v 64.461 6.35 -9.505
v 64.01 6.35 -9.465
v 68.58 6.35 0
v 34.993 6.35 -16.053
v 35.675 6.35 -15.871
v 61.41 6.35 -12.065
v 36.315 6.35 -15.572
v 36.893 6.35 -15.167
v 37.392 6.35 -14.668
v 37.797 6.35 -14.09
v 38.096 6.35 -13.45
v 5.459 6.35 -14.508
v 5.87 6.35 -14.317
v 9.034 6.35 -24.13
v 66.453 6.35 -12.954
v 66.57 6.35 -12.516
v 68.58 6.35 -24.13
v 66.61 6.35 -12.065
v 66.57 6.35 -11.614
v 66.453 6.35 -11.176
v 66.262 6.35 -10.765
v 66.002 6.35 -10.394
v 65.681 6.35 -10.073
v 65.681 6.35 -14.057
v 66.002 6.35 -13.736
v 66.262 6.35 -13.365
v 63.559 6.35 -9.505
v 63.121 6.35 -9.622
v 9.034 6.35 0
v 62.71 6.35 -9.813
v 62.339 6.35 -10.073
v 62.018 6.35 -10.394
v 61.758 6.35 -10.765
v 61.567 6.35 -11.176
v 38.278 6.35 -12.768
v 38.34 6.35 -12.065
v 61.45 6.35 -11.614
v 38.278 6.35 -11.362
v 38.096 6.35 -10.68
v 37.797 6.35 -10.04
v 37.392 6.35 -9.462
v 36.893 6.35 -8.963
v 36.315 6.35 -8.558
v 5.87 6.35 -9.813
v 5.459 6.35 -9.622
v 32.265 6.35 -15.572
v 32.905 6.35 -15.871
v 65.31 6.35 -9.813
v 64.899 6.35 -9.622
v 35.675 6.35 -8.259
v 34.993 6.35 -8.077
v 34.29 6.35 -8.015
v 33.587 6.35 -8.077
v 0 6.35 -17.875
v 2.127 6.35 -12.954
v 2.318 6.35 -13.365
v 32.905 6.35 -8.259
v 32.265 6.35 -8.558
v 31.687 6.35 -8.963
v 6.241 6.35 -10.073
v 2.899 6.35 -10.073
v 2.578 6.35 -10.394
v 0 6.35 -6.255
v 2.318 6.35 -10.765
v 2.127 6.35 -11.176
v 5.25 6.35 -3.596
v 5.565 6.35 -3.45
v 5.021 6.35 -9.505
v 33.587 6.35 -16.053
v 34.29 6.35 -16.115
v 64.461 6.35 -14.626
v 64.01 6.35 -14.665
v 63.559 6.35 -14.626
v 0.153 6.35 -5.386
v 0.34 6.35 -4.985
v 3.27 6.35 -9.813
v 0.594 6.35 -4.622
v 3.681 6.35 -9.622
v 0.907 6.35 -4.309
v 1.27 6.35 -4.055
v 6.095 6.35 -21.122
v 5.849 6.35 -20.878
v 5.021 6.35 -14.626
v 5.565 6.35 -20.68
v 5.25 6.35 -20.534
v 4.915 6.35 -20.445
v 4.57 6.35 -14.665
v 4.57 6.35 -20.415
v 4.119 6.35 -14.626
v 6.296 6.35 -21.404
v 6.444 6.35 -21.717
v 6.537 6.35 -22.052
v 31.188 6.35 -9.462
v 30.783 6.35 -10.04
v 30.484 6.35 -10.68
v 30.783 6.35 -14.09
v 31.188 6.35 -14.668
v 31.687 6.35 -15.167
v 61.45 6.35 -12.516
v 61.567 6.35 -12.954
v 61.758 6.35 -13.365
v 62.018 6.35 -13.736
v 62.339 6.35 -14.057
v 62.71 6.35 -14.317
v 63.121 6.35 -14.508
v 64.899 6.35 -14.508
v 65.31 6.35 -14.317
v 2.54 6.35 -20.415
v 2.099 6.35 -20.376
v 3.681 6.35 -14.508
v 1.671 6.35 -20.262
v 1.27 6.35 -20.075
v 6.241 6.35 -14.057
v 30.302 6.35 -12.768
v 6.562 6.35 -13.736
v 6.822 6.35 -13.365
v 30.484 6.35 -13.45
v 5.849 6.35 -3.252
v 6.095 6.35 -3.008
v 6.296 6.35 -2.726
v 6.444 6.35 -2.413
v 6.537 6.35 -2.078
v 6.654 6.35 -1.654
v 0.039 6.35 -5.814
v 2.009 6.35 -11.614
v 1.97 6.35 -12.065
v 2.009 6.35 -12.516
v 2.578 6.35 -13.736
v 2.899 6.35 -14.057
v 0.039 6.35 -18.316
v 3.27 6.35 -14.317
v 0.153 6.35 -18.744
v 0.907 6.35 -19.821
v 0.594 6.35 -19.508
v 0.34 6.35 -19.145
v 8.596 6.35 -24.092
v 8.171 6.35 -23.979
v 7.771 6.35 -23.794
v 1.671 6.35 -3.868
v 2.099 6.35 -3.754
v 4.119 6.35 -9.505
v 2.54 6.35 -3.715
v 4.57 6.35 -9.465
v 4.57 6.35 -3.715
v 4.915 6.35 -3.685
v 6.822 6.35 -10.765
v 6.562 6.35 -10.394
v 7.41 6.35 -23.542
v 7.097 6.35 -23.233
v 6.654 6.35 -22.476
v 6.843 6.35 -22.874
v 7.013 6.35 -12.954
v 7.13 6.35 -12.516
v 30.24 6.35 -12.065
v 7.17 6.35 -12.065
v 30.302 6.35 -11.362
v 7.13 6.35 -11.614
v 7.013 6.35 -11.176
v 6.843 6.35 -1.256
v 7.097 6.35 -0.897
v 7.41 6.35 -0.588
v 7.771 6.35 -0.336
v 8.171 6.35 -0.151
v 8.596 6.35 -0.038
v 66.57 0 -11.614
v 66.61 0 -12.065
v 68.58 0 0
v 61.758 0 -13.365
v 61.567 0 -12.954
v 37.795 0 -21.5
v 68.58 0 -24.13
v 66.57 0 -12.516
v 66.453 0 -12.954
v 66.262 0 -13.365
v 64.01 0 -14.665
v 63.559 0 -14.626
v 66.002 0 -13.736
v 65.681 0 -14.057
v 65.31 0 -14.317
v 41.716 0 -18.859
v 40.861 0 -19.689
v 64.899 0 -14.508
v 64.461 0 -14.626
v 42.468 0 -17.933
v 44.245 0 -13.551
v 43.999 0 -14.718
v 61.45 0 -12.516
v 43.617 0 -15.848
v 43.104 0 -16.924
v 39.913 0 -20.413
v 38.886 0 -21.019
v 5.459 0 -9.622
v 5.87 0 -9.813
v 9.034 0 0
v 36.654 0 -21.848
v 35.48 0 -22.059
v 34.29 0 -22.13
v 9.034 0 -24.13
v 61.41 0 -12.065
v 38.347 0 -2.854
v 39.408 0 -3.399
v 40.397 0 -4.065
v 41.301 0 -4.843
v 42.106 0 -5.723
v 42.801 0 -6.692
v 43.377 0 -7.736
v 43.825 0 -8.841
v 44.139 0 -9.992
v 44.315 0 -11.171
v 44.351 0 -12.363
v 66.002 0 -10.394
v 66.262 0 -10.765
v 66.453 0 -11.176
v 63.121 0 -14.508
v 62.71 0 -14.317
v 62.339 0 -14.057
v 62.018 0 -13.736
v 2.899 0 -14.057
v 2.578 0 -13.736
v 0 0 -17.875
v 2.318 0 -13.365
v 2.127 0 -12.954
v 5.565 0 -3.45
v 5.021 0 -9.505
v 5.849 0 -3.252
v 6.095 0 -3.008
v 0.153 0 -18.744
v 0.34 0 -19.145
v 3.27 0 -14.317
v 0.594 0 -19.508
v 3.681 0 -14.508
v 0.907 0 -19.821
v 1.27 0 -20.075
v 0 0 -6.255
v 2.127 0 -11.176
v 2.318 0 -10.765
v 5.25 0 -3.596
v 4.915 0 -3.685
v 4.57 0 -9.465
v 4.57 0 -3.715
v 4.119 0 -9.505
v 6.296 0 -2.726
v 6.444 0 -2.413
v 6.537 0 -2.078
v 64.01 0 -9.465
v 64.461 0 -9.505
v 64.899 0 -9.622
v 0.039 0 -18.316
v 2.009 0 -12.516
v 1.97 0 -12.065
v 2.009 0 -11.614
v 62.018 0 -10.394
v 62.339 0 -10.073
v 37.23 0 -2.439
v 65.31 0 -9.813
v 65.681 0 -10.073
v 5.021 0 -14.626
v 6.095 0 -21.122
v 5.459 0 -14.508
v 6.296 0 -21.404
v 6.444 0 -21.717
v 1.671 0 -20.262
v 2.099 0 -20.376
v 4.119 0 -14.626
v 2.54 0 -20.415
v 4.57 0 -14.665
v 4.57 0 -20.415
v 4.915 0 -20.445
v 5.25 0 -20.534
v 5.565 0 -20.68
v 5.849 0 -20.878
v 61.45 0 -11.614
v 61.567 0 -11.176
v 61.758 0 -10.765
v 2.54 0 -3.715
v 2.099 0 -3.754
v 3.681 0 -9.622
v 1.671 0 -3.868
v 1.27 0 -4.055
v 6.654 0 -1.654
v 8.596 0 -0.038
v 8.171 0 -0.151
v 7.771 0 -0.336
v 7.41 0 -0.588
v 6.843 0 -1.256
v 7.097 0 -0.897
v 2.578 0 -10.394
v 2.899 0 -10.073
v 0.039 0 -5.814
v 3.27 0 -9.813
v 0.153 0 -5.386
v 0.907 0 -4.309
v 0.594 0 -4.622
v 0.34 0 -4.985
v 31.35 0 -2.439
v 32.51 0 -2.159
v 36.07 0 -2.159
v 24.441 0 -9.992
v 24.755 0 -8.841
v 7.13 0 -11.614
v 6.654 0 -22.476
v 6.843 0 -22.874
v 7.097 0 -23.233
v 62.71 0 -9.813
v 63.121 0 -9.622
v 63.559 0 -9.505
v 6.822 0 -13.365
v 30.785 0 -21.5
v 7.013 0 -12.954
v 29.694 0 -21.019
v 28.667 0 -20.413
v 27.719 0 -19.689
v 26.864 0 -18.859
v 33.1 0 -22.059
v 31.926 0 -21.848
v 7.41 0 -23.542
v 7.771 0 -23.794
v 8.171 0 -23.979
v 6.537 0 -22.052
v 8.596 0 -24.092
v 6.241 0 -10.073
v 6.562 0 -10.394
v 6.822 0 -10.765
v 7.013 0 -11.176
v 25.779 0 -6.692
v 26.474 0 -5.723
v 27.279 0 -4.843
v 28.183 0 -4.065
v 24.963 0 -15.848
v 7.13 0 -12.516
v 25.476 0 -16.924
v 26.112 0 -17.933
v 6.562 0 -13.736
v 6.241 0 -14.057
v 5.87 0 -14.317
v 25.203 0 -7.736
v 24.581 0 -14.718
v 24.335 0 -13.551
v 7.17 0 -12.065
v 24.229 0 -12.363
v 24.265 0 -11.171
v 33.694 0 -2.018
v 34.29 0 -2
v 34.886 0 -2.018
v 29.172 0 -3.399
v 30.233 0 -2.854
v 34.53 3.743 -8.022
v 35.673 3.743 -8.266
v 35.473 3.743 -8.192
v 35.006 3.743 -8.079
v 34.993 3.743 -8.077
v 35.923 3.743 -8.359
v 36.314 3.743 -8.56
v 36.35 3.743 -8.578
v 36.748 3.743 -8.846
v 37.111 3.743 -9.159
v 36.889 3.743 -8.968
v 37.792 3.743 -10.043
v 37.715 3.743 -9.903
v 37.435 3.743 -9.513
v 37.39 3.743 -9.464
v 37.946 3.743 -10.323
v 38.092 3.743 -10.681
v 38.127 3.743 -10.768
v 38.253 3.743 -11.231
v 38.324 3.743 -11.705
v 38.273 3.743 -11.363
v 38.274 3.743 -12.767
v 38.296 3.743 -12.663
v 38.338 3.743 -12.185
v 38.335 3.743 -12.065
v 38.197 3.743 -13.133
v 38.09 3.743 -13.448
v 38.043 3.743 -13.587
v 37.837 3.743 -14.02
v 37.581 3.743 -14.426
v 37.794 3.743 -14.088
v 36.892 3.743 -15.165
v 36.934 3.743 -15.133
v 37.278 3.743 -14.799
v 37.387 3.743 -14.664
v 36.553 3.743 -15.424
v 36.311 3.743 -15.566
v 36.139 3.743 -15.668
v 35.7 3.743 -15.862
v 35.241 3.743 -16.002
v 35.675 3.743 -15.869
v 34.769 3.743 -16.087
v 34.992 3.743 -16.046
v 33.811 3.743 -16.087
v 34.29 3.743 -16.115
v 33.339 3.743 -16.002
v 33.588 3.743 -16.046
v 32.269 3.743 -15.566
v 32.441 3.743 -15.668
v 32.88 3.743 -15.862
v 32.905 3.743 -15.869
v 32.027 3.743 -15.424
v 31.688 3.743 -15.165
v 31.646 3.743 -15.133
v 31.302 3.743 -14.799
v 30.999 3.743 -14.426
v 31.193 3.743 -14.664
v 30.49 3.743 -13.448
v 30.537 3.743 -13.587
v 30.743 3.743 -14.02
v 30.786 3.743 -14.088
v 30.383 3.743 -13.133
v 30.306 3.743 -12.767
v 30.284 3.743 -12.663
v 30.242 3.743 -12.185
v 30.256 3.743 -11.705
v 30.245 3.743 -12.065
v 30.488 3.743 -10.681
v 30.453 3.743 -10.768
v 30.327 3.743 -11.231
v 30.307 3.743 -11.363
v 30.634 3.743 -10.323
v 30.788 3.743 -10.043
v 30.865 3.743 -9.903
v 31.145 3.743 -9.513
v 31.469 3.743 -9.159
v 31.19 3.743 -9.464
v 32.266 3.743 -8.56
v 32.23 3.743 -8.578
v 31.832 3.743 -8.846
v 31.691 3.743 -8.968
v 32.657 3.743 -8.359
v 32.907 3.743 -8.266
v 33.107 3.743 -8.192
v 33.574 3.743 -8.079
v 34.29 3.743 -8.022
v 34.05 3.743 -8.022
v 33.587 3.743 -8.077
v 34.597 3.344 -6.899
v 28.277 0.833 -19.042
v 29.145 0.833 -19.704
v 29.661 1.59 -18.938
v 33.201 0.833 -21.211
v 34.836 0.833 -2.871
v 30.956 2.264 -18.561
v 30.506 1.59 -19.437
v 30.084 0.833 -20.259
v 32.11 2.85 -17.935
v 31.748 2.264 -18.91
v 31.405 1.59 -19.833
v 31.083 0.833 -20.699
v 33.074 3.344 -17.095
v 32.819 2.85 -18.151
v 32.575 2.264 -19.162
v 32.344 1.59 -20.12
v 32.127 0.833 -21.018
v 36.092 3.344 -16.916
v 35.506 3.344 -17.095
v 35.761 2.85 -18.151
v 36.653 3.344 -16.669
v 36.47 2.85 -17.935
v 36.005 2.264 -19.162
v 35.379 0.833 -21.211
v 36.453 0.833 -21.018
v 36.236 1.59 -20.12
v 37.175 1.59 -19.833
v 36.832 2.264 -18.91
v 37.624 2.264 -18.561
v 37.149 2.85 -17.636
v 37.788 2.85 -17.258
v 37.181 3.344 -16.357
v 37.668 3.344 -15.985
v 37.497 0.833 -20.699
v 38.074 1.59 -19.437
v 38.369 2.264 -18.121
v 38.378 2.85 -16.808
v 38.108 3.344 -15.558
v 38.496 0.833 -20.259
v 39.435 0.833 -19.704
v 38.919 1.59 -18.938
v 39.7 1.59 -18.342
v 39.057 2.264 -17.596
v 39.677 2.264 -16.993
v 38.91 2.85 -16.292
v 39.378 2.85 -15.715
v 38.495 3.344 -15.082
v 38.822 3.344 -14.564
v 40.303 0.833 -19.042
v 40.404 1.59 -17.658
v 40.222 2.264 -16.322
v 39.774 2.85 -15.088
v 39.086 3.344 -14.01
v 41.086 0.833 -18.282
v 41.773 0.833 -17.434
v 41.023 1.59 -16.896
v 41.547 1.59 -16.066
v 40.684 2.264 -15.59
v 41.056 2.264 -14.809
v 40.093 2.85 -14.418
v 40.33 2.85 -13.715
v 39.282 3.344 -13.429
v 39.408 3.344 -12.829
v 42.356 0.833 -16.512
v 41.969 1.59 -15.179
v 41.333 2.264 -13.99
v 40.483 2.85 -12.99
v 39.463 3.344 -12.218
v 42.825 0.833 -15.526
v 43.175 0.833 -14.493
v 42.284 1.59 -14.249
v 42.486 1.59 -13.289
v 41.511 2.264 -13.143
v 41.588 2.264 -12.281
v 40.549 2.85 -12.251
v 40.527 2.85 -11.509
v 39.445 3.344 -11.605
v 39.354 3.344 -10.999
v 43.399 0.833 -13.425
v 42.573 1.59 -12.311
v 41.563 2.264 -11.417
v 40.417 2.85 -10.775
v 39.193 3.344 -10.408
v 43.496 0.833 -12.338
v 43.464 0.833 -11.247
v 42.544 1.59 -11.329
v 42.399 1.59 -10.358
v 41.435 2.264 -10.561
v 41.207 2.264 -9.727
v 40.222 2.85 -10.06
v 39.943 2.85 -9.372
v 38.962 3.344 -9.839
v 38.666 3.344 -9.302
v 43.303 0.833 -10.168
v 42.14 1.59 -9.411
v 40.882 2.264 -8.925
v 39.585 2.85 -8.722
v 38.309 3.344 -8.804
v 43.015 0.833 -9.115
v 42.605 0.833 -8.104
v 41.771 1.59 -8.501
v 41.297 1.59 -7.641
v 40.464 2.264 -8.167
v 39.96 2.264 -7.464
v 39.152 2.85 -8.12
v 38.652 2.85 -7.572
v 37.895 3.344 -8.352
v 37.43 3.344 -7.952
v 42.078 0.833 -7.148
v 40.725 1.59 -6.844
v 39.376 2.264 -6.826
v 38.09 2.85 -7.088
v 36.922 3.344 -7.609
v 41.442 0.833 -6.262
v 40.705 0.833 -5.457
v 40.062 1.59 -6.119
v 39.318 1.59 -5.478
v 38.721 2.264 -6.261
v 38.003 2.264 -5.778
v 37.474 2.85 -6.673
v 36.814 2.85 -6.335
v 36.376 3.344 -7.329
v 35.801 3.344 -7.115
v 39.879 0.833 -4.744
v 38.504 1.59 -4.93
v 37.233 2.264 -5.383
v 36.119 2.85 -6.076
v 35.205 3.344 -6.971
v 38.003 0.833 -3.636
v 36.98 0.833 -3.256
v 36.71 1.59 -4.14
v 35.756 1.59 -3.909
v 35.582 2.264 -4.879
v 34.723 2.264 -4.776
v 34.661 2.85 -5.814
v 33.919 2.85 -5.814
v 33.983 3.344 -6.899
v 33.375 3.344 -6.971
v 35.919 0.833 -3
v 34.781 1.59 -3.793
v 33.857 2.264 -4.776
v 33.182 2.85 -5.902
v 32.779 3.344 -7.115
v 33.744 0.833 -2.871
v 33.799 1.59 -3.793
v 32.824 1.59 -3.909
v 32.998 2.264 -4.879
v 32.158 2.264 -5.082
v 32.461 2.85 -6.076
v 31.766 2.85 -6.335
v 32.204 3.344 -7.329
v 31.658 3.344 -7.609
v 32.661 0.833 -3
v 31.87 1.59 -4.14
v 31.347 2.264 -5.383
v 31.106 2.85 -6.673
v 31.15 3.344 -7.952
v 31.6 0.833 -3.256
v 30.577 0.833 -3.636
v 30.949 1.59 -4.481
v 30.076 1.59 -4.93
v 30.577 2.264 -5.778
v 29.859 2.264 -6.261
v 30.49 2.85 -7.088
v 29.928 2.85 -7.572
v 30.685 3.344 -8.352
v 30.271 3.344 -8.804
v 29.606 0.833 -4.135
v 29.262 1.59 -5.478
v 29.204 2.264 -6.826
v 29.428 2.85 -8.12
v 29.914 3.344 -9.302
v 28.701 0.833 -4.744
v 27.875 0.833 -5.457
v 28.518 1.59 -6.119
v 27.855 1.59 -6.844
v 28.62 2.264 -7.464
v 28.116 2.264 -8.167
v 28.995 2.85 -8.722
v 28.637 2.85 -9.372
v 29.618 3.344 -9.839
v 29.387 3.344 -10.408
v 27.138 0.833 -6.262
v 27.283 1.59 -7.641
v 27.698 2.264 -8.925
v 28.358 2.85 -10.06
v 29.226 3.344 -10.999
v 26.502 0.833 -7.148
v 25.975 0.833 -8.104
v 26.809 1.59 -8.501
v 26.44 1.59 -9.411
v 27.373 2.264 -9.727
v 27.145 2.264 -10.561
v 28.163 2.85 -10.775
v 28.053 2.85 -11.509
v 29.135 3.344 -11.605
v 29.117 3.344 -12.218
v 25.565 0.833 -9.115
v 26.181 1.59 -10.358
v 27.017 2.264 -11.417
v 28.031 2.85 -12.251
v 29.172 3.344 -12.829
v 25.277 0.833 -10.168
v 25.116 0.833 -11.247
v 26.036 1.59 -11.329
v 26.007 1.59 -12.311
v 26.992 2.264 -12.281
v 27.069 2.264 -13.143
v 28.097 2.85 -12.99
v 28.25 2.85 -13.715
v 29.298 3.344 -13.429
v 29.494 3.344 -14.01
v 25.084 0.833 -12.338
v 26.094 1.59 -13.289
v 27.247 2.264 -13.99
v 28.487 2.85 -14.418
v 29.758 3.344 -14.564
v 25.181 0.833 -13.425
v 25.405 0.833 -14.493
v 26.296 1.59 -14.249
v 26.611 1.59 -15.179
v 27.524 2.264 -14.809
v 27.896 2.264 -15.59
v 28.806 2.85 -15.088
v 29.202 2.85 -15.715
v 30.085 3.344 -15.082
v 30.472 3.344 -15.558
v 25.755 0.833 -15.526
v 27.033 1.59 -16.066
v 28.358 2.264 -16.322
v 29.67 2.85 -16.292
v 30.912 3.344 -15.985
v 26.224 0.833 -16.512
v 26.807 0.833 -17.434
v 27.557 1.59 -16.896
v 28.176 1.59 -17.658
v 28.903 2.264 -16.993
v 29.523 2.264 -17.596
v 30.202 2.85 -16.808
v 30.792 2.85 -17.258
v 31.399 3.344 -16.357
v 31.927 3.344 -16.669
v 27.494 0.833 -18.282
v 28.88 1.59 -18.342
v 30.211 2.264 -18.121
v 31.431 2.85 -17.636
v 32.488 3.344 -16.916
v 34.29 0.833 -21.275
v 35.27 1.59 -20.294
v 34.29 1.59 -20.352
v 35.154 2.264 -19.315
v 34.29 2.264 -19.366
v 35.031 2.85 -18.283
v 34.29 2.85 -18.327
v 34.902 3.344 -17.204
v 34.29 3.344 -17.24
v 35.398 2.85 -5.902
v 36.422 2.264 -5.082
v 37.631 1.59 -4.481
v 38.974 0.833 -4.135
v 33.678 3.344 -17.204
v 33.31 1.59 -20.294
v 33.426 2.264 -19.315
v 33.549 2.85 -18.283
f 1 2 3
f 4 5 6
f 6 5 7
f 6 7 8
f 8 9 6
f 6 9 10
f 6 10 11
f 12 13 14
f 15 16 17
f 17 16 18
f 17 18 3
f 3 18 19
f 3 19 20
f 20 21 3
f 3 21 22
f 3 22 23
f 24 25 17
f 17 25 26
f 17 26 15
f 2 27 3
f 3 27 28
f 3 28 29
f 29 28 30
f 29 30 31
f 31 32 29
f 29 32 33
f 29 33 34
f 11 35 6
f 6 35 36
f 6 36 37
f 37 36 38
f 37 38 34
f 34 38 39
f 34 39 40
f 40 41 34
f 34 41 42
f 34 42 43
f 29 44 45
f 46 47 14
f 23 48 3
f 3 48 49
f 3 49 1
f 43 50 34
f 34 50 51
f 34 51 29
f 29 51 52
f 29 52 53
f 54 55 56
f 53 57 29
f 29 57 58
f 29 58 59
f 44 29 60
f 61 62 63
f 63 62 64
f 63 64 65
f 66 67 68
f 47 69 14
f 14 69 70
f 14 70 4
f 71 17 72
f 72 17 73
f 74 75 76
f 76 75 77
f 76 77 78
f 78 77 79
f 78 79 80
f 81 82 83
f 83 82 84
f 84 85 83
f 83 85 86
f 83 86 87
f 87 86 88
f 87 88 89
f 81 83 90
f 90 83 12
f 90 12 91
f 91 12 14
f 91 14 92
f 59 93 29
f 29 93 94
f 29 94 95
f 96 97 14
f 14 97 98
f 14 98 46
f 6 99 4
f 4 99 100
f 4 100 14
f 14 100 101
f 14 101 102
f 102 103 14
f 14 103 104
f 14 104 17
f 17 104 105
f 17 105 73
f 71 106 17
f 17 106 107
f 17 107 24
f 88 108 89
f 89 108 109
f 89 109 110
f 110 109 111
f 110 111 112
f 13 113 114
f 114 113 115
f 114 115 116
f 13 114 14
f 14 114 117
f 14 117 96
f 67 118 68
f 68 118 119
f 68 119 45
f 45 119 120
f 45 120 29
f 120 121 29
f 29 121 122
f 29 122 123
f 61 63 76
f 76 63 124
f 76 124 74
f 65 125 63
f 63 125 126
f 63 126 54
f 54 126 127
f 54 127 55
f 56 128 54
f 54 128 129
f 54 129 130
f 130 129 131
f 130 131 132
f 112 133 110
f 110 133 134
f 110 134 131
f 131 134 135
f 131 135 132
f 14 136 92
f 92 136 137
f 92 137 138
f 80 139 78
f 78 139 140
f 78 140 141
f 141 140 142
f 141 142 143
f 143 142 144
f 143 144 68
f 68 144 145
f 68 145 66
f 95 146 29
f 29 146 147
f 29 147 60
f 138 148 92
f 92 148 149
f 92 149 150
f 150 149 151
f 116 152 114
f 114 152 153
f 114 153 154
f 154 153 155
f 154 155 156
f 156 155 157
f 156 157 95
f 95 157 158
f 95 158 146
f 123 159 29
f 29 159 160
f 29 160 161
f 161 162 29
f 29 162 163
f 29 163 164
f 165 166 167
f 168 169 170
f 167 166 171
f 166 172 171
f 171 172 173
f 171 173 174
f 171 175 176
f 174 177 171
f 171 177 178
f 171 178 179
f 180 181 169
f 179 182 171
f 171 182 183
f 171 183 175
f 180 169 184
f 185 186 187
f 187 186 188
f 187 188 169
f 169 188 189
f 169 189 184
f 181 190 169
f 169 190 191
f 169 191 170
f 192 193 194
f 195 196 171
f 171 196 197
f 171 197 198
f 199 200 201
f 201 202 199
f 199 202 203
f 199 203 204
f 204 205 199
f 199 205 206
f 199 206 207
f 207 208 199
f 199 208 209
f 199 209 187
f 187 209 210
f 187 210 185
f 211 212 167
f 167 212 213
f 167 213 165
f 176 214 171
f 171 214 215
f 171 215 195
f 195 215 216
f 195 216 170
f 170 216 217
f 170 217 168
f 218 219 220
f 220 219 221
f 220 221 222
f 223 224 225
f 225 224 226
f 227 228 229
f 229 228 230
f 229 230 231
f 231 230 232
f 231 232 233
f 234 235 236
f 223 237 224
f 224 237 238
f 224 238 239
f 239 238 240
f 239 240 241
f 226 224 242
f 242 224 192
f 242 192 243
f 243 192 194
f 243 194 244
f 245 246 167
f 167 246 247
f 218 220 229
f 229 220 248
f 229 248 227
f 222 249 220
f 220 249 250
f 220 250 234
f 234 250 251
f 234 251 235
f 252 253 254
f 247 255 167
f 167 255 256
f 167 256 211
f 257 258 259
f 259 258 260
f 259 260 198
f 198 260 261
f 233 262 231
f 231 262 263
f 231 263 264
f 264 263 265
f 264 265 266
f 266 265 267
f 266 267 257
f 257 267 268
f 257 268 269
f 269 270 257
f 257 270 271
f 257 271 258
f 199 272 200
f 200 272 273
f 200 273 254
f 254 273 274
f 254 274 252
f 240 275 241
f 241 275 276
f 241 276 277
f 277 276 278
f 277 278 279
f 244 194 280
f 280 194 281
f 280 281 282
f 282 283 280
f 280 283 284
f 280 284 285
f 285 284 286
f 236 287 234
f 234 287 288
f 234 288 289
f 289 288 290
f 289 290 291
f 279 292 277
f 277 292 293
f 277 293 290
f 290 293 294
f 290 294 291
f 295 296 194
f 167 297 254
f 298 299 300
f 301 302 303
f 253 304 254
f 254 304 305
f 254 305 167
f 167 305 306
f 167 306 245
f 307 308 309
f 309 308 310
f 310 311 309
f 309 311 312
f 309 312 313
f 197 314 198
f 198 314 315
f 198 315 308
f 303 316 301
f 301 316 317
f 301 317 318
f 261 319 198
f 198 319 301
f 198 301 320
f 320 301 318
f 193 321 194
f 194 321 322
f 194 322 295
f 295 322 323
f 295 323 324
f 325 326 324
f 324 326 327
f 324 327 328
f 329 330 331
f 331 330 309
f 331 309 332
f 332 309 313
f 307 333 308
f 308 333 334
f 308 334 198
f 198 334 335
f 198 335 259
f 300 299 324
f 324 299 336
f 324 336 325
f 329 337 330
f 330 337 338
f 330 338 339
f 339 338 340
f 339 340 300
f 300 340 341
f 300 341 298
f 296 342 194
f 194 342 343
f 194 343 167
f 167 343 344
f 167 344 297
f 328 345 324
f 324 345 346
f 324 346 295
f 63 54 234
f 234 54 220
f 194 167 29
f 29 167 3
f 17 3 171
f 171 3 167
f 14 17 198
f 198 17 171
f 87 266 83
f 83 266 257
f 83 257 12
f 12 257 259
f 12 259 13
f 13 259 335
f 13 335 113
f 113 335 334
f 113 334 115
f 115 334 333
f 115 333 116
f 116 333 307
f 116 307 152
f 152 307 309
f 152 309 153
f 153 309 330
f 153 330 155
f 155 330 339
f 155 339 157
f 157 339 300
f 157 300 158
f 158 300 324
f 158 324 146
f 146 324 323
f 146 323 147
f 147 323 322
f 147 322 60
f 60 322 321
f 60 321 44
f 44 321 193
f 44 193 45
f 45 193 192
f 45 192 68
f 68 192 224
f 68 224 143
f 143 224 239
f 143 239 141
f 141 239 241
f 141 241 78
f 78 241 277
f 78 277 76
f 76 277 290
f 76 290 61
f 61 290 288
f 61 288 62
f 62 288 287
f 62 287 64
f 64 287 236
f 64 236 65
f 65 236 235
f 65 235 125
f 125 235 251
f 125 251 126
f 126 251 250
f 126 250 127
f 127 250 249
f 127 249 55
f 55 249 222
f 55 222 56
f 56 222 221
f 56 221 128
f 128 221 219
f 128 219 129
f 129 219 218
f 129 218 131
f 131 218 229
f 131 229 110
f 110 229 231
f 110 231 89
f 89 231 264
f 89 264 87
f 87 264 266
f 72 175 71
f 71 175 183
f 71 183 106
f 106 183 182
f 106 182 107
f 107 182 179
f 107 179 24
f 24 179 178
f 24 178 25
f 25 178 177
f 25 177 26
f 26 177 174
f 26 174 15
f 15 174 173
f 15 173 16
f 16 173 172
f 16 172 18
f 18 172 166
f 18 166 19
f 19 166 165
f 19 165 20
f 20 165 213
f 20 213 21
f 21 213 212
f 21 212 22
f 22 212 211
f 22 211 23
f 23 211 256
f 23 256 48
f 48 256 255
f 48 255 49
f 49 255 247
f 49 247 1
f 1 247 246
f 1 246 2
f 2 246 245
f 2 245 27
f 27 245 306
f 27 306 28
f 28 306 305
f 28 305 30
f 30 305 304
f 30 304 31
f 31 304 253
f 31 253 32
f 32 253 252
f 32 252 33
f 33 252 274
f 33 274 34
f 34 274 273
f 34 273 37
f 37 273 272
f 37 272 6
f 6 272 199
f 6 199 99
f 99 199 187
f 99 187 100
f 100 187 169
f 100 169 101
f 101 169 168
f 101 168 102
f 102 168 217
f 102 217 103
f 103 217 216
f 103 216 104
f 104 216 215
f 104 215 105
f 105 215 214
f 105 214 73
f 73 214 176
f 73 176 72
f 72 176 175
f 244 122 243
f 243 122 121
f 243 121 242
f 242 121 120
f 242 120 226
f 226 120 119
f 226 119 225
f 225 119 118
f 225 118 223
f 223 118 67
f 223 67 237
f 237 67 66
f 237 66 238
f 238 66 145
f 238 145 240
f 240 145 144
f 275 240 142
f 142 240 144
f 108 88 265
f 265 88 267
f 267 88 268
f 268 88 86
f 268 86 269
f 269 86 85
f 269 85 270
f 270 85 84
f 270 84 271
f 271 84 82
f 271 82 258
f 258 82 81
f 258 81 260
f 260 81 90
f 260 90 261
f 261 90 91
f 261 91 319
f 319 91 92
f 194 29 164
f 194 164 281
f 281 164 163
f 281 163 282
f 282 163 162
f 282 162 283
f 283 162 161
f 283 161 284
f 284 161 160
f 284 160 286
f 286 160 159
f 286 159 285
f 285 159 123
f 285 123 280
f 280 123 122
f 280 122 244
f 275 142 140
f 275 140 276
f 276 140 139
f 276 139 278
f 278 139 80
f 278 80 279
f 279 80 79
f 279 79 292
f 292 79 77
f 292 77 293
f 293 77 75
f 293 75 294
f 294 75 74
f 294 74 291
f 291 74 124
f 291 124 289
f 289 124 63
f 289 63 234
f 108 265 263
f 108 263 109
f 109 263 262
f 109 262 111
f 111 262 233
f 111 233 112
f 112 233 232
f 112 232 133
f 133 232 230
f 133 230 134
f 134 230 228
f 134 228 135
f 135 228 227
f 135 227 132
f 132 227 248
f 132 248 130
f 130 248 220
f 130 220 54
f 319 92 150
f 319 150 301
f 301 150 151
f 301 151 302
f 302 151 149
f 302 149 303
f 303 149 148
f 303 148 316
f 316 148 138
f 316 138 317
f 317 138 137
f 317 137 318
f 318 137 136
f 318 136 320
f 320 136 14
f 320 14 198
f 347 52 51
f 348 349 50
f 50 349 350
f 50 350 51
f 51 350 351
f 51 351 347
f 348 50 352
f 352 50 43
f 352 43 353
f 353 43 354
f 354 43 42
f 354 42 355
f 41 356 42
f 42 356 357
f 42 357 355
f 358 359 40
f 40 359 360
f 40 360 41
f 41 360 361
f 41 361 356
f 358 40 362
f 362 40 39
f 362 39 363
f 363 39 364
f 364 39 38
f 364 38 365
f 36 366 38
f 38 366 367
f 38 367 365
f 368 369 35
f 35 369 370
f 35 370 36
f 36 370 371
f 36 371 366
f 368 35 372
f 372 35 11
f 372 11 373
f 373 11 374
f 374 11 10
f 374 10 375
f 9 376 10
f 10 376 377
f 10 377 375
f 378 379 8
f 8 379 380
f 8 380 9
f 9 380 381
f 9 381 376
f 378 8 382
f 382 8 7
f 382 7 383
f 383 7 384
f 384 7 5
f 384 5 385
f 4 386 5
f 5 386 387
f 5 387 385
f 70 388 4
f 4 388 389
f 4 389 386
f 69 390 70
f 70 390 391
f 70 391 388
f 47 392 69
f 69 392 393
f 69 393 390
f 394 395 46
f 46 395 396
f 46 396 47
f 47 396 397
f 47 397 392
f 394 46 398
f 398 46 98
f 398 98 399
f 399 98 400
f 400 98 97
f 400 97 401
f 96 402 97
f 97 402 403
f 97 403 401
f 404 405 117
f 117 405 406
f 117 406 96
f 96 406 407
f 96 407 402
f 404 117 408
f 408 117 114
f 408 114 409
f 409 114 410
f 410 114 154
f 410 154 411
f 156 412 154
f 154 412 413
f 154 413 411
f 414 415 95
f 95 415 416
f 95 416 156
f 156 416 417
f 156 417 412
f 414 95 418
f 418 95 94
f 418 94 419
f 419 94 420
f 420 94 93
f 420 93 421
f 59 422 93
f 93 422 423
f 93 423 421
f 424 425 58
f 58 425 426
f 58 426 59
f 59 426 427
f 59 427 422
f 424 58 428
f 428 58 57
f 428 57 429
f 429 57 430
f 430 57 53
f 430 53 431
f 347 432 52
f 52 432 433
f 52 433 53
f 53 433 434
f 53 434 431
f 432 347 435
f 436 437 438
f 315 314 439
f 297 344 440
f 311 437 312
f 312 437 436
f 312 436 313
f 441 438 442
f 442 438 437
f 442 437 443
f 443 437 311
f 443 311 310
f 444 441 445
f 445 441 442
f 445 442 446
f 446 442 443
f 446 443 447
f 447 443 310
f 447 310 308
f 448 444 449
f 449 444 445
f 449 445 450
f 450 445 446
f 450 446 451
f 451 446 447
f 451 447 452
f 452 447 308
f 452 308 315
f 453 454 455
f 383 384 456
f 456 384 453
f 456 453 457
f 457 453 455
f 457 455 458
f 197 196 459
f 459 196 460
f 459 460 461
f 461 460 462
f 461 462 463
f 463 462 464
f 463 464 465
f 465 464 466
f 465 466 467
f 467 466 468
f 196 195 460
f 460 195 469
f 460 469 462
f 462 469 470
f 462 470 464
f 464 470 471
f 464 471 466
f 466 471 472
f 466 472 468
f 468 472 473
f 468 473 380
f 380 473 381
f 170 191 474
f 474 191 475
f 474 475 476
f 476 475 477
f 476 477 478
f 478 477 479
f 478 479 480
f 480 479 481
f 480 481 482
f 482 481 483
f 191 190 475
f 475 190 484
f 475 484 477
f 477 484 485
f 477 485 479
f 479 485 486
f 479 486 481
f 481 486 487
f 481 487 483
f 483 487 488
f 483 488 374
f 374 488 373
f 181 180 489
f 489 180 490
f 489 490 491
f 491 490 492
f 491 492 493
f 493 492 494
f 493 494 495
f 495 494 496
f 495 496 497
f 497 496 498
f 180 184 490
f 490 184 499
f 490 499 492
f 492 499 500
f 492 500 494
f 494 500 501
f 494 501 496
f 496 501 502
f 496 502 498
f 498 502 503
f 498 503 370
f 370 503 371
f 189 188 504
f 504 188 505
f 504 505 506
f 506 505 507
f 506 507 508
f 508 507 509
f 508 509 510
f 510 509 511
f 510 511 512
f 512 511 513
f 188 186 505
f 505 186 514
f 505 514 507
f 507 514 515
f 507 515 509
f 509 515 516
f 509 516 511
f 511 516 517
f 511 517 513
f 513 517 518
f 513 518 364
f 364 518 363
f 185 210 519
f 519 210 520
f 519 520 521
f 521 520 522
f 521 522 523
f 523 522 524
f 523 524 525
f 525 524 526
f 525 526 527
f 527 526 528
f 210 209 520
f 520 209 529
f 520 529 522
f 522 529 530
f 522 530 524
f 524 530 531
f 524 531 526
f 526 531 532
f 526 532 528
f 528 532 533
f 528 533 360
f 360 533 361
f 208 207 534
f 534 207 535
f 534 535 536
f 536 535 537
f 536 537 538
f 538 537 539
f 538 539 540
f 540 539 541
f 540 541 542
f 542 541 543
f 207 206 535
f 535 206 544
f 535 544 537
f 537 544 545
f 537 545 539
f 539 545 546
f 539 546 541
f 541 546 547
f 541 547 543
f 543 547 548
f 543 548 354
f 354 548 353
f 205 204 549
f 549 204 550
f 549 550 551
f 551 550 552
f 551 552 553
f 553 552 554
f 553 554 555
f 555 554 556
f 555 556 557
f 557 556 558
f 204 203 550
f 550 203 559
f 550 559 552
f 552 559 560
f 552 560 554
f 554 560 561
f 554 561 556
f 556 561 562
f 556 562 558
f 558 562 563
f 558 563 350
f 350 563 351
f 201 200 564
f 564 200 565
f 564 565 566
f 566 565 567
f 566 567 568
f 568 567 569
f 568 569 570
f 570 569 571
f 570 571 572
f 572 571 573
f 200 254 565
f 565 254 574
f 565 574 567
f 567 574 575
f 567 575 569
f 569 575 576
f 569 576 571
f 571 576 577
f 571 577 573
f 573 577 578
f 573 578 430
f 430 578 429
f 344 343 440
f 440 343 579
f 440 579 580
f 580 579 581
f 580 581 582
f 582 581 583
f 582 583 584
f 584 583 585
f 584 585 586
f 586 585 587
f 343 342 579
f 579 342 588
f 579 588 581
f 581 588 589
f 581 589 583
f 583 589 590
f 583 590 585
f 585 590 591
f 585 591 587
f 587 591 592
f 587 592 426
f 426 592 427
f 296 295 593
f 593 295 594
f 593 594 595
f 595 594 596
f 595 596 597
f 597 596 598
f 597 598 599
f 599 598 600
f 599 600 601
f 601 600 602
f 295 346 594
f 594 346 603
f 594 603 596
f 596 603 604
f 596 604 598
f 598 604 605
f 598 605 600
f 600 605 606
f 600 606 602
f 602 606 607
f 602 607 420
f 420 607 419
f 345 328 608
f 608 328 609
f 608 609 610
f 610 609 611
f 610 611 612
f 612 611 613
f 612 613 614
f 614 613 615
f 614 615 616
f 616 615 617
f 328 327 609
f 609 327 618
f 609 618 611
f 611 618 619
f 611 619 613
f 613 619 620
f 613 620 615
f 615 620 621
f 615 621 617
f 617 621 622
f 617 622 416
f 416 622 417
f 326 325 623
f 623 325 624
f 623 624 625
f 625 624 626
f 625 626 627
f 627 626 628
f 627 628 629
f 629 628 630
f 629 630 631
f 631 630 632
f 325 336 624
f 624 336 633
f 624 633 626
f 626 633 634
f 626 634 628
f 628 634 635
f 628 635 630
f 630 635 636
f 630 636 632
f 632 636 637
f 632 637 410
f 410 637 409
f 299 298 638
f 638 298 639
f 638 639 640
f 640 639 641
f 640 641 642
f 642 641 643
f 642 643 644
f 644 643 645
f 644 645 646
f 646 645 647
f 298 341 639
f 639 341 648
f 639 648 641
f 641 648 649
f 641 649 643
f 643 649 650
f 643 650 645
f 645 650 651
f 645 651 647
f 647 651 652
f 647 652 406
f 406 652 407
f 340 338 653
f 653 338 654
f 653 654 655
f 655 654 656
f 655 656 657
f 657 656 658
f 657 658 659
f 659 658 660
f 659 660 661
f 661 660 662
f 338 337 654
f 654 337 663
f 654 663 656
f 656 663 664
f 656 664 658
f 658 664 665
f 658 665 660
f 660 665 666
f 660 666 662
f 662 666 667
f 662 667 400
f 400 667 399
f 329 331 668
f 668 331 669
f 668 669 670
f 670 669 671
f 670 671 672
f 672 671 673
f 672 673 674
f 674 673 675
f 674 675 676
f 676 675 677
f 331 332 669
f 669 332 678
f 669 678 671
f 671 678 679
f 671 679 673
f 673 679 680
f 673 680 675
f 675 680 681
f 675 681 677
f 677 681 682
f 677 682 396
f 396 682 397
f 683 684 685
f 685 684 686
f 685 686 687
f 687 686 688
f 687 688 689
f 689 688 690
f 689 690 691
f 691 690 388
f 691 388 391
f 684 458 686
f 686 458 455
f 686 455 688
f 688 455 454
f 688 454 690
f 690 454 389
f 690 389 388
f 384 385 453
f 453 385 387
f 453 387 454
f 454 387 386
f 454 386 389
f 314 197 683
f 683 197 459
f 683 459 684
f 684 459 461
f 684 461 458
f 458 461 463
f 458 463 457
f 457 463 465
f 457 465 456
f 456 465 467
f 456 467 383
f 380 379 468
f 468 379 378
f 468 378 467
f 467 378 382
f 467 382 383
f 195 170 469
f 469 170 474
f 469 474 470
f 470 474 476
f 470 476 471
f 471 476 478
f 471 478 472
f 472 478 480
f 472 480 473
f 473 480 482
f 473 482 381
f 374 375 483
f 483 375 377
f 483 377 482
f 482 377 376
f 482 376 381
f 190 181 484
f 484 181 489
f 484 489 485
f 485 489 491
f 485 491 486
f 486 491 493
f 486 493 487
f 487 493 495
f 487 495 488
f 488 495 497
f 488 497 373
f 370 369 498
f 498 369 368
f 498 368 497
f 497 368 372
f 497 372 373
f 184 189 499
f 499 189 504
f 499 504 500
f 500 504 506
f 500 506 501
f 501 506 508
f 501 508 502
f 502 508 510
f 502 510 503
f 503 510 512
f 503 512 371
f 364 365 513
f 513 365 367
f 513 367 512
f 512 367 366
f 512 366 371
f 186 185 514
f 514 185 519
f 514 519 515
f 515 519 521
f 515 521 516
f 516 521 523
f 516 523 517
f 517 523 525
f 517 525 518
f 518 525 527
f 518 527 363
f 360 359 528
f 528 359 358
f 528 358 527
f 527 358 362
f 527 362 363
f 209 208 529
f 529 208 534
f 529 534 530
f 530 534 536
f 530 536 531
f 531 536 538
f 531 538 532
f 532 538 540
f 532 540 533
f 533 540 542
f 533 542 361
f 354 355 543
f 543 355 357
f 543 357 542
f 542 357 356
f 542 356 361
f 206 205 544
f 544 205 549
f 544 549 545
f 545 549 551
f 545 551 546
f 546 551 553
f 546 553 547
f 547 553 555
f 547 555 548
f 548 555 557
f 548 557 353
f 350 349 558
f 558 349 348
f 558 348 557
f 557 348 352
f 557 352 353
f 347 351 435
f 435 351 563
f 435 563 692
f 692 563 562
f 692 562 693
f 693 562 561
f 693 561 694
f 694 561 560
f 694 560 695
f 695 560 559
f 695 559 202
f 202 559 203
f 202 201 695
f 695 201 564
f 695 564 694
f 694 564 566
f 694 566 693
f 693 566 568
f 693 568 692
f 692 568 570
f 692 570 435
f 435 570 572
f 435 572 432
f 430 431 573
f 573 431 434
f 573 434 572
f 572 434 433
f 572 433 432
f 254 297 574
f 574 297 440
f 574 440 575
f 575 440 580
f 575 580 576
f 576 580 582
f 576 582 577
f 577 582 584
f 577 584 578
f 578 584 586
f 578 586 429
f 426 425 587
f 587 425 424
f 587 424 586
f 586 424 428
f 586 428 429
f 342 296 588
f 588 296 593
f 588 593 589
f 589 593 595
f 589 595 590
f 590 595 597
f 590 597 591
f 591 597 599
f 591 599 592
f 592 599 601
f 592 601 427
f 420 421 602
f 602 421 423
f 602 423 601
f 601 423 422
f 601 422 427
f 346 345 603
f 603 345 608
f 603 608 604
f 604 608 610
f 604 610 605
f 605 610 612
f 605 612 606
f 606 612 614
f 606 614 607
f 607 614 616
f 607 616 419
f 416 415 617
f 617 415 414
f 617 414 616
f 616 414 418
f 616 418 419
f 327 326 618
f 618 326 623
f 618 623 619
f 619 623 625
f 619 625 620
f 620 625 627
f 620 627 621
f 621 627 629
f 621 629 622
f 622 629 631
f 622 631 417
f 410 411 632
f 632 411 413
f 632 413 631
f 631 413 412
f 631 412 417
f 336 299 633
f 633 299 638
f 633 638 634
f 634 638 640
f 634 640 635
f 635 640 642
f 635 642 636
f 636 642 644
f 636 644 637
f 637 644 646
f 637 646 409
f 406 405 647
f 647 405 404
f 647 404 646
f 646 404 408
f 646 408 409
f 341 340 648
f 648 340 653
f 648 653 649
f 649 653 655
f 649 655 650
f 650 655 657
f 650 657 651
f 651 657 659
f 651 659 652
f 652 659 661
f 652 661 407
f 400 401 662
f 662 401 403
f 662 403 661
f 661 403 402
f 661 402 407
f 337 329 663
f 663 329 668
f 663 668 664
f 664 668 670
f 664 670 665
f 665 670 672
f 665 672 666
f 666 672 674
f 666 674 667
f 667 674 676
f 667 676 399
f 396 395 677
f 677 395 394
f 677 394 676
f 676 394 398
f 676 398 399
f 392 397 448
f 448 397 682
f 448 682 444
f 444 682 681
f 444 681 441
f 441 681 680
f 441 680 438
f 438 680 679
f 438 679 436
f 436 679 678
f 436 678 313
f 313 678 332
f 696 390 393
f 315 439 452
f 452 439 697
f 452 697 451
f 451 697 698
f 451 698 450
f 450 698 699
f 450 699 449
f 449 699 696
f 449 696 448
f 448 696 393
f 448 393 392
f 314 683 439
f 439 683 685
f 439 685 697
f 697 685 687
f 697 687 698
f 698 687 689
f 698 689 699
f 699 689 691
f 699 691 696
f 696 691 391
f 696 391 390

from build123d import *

# Parameters (mm, degrees)
SKETCH2_W           = 68.58
SKETCH2_H           = 24.13
SKETCH2_R           = 2.6
BOSS_EXTRUDE1_DEPTH = 6.35
CUT_EXTRUDE1_DEPTH  = 7.35
FILLET3_R           = 2.54
SKETCH4_R           = 4.05
CUT_EXTRUDE2_DEPTH  = 7.3500001


with BuildPart() as part:
    # Sketch2 → Boss-Extrude1 (new body)
    with BuildSketch(Plane(origin=(0, 0, 0), x_dir=(1, 0, 0), z_dir=(0, 1, 0))):
        with Locations((34.29, 12.065)):
            Rectangle(SKETCH2_W, SKETCH2_H)
        with Locations((4.57, 12.065)):
            Circle(SKETCH2_R, mode=Mode.SUBTRACT)
        with Locations((64.01, 12.065)):
            Circle(SKETCH2_R, mode=Mode.SUBTRACT)
    extrude(amount=BOSS_EXTRUDE1_DEPTH)

    # Sketch3 → Cut-Extrude1 (cut, through all)
    with BuildSketch(Plane(origin=(0, 6.35, 0), x_dir=(1, 0, 0), z_dir=(0, 1, 0))):
        with BuildLine():
            Line((4.57, 3.715), (0, 3.715))
            Line((0, 3.715), (0, 0))
            Line((0, 0), (6.57, 0))
            Line((6.57, 0), (6.57, 1.715))
            ThreePointArc((6.57, 1.715), (5.984213562, 3.129213562), (4.57, 3.715))
        make_face()
        with BuildLine():
            ThreePointArc((4.57, 20.415), (5.984213562, 21.000786438), (6.57, 22.415))
            Line((6.57, 22.415), (6.57, 24.13))
            Line((6.57, 24.13), (0, 24.13))
            Line((0, 24.13), (0, 20.415))
            Line((0, 20.415), (4.57, 20.415))
        make_face()
    extrude(amount=-CUT_EXTRUDE1_DEPTH, mode=Mode.SUBTRACT)

    # Fillet3
    fillet3_edges = [part.edges().sort_by_distance(p)[0] for p in [
        (6.57, 3.175, 0),
        (0, 3.175, -3.715),
        (0, 3.175, -20.415),
        (6.57, 3.175, -24.13),
    ]]
    fillet(fillet3_edges, radius=FILLET3_R)

    # Sketch4 → Cut-Extrude2 (cut, through all)
    with BuildSketch(Plane(origin=(0, 6.35, 0), x_dir=(1, 0, 0), z_dir=(0, 1, 0))):
        with Locations((34.29, 12.065)):
            Circle(SKETCH4_R)
    extrude(amount=-CUT_EXTRUDE2_DEPTH, mode=Mode.SUBTRACT)

    # Sketch8 one side → Cut-Revolve6 (revolve, cut)
    with BuildSketch(Plane(origin=(34.29, 0, 0), x_dir=(0, 0, -1), z_dir=(1, 0, 0))):
        with BuildLine():
            Line((12.065, 0), (22.13, 0))
            ThreePointArc((22.13, 0), (17.5473974, 3.215969501), (12.065, 4.35))
            Line((12.065, 4.35), (12.065, 0))
        make_face()
    revolve(axis=Axis((34.29, 6.35, -12.065), (0, -1, 0)), mode=Mode.SUBTRACT)


solid = part.part
